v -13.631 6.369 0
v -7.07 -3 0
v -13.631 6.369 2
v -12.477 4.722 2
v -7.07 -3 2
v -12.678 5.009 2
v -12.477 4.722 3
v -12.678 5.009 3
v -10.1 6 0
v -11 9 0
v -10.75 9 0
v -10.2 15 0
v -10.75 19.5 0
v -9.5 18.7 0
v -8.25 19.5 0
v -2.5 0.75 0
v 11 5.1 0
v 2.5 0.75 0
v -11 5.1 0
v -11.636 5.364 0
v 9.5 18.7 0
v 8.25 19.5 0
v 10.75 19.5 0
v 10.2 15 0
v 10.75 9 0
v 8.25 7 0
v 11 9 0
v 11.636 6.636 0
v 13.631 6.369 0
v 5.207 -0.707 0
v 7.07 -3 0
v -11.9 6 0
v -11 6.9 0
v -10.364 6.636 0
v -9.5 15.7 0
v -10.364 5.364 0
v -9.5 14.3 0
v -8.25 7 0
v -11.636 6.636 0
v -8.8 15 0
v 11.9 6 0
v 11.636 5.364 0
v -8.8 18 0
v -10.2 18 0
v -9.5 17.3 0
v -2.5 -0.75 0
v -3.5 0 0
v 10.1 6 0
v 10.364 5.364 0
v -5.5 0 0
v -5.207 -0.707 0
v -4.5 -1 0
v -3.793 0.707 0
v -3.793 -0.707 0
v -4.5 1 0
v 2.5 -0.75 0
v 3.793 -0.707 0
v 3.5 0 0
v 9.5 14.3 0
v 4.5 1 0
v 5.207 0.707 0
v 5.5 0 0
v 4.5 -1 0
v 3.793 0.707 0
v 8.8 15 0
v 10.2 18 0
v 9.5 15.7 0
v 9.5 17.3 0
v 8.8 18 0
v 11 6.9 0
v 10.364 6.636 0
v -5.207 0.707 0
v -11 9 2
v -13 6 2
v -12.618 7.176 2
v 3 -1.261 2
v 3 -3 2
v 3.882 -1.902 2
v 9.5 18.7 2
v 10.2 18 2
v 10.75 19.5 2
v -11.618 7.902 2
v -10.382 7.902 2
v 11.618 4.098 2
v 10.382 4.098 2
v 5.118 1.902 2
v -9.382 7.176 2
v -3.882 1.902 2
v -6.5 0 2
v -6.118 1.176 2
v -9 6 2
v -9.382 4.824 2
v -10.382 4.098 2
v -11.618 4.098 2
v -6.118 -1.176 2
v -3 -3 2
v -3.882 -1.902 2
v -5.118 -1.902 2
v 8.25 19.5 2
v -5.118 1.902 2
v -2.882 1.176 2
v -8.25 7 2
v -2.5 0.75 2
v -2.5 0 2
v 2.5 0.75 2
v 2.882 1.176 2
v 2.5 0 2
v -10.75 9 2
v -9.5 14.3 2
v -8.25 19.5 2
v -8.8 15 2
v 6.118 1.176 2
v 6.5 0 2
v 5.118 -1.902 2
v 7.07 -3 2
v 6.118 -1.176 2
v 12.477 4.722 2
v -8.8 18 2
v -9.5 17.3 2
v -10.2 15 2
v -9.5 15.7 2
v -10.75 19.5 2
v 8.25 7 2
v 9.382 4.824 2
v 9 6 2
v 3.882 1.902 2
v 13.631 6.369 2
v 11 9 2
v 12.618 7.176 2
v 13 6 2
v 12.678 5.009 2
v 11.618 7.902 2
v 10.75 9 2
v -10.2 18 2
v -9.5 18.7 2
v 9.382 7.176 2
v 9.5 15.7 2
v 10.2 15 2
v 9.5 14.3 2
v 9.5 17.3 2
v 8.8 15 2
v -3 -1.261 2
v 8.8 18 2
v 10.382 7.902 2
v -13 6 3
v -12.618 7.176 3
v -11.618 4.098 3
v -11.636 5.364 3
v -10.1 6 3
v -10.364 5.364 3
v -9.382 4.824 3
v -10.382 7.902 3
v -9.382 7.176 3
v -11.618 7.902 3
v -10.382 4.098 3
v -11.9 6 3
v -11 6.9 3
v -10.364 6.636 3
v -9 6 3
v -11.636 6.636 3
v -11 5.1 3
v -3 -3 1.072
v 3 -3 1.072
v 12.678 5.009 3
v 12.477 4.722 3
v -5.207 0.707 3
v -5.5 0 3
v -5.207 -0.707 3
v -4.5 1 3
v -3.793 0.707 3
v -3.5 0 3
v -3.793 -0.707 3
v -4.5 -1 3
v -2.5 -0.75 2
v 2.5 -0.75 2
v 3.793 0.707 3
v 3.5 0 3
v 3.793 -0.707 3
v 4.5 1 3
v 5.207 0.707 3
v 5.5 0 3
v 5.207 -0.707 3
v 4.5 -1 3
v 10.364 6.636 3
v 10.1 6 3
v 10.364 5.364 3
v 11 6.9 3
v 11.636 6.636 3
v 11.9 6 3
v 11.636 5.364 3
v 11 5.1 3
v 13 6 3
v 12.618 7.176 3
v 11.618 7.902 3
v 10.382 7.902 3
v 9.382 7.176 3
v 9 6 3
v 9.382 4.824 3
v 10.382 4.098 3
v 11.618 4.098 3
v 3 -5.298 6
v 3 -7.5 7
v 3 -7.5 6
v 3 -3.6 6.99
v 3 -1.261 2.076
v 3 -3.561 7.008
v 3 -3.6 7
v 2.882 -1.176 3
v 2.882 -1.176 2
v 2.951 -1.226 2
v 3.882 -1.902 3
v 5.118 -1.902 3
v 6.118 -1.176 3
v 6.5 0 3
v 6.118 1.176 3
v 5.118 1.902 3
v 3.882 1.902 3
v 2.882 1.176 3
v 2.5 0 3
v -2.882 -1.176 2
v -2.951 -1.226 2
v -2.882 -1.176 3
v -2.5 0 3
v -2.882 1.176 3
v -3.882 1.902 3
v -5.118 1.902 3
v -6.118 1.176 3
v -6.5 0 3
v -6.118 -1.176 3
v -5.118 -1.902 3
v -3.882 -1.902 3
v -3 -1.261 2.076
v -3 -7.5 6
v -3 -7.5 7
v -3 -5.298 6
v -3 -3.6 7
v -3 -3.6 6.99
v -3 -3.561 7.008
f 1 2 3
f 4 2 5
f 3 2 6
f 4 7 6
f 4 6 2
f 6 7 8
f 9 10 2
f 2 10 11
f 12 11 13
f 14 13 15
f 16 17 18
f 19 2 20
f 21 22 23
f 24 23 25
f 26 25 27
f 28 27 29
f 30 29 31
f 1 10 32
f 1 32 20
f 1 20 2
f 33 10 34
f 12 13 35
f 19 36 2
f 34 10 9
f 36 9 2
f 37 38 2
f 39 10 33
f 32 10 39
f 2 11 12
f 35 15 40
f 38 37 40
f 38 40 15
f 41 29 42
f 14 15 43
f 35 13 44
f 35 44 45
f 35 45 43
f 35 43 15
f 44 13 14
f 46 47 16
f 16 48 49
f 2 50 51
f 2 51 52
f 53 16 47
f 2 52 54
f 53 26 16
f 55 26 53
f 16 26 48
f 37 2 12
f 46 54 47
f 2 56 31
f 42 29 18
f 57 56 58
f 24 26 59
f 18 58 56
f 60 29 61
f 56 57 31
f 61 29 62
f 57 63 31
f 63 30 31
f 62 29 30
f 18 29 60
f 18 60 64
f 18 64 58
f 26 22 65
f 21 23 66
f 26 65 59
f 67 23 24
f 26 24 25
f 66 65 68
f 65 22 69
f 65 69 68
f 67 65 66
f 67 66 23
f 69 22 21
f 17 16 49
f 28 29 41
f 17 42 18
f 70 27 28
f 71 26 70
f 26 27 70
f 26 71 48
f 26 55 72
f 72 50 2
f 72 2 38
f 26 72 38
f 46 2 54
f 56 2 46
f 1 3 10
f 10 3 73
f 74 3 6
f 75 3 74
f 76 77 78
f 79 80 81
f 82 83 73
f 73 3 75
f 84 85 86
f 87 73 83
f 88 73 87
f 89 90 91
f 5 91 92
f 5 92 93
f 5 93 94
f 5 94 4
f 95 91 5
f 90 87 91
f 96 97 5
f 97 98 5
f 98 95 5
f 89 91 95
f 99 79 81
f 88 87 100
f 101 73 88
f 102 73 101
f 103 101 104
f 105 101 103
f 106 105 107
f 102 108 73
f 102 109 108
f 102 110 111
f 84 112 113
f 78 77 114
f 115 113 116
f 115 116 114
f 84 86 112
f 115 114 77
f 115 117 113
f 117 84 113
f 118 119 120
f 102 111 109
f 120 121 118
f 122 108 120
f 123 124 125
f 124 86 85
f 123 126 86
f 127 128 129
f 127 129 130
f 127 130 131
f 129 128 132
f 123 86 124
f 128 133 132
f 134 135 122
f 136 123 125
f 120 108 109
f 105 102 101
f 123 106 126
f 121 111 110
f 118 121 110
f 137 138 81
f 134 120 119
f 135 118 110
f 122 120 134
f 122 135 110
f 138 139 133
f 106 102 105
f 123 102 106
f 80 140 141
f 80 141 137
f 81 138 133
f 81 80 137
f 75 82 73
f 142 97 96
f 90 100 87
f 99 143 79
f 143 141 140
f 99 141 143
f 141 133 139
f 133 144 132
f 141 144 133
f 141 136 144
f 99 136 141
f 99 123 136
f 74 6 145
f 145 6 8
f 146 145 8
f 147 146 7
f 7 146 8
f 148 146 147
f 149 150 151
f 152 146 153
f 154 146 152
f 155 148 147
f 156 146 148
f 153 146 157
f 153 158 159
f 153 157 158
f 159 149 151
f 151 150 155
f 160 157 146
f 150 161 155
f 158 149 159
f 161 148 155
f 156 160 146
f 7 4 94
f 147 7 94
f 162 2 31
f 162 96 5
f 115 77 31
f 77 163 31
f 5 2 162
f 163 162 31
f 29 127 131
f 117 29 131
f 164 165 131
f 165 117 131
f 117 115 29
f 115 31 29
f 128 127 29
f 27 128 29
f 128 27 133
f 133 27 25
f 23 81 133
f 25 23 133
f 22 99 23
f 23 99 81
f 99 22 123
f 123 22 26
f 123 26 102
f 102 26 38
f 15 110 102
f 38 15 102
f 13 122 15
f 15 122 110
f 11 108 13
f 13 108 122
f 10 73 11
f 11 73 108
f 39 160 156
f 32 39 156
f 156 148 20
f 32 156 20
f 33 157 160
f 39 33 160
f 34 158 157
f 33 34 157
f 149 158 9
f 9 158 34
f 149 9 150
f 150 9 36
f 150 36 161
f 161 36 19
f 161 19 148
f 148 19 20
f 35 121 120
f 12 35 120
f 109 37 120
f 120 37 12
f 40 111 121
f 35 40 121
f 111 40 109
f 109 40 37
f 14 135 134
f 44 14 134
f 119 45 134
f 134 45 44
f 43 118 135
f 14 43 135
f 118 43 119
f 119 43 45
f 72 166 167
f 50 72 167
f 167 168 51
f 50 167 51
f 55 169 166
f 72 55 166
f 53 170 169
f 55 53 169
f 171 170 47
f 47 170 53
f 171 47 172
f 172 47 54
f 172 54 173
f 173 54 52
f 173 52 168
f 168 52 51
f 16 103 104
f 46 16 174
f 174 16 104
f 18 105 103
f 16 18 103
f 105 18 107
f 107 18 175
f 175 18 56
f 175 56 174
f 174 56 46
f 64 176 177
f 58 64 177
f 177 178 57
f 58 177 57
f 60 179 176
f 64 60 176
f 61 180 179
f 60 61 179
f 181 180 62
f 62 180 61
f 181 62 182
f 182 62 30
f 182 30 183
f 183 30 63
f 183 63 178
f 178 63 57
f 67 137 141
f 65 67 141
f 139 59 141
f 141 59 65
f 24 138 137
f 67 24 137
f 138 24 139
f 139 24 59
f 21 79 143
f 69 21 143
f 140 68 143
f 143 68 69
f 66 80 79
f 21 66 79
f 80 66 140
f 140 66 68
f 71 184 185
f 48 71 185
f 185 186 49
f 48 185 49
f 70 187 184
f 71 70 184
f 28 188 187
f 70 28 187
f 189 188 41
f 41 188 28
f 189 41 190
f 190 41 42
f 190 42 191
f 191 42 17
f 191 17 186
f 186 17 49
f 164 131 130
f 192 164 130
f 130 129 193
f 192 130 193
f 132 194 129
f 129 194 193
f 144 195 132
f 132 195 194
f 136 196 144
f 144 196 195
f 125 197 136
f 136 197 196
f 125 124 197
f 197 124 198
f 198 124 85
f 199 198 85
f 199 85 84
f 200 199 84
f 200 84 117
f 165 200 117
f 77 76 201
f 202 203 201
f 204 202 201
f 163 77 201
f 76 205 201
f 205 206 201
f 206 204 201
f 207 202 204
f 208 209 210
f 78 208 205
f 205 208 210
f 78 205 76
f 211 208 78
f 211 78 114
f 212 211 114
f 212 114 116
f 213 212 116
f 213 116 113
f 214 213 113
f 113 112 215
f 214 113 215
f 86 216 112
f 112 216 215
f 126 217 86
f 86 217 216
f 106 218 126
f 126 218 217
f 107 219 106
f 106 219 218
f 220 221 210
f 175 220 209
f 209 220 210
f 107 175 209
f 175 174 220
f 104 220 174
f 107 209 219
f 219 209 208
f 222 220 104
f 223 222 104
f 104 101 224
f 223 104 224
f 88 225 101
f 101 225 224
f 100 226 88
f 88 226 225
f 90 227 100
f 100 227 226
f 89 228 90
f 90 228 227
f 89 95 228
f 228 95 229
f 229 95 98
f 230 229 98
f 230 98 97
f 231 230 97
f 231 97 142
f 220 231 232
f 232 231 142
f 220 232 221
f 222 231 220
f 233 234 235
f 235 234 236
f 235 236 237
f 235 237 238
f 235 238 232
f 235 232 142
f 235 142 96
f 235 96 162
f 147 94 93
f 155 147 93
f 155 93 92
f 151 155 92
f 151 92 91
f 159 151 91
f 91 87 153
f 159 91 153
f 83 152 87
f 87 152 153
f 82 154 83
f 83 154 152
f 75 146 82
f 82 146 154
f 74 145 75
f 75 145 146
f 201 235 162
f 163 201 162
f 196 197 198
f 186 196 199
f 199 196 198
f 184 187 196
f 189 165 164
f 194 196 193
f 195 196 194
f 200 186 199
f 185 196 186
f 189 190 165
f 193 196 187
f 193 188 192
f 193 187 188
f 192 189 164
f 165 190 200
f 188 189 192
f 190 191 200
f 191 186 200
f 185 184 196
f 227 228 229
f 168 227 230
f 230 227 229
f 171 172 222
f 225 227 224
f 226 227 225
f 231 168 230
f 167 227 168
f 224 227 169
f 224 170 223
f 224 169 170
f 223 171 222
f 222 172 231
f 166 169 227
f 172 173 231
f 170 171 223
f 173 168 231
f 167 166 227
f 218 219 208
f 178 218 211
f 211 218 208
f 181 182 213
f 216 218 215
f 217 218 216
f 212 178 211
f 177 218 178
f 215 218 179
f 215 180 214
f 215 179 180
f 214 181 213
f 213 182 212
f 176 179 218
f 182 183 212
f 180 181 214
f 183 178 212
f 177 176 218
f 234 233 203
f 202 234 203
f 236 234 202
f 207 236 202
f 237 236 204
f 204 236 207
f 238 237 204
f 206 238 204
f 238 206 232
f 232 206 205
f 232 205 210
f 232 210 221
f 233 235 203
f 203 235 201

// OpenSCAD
// Front shock tower for a Losi Micro Truggy

difference () {
  // Main plate
  union () {
    translate([-15.5,-3,0]) cube([31.0,22.5,2]);

    // Standoffs for shocks
    translate([11,6,1.5]) cylinder(r=2, h=3, center=true, $fn=10);
    translate([-11,6,1.5]) cylinder(r=2, h=3, center=true, $fn=10);

    // Standoffs for mounting holes
    translate([4.5,0,1.5]) cylinder(r=2, h=3, center=true, $fn=10);
    translate([-4.5,0,1.5]) cylinder(r=2, h=3, center=true, $fn=10);

    // wire holder
    translate([-3,-2.5,0]) rotate([25,0,0]) cube([6,2,6.8]);
    translate([-3,-7.5, 6]) cube([6,3.9,1]);
  }

  // Mounting holes
  translate([4.5,0,0]) cylinder(r=1, h=15, center=true, $fn=8);
  translate([-4.5,0,0]) cylinder(r=1, h=15, center=true, $fn=8);

  // Notch
  cube([5, 1.5, 15], center=true);

  // shock holes
  translate([11,6,0]) cylinder(r=.9, h=15, center=true, $fn=8);

  translate([-11,6,0]) cylinder(r=.9, h=15, center=true, $fn=8);

  // body holes
  translate([9.5,15,0]) cylinder(r=.7, h=15, center=true, $fn=4);
  translate([9.5,18,0]) cylinder(r=.7, h=15, center=true, $fn=4);

  translate([-9.5,15,0]) cylinder(r=.7, h=15, center=true, $fn=4);
  translate([-9.5,18,0]) cylinder(r=.7, h=15, center=true, $fn=4);

  // bottom angles
  translate([7,-3.1,-2]) rotate([0,0,-35]) cube([10,20,15]);
 mirror([1,0,0]) translate([7,-3.1,-2]) rotate([0,0,-35]) cube([10,20,15]);

  // center
  translate([-8.25,7,-2]) cube([16.5, 50, 15]);

  // posts
  translate([10.75,9,-2]) cube([15, 50, 15]);
  mirror([1,0,0]) translate([10.75,9,-2]) cube([15, 50, 15]);

  translate([11,9,-2]) rotate([0,0,-45]) cube(10);
  mirror([1,0,0]) translate([11,9,-2]) rotate([0,0,-45]) cube(10);
}
    
